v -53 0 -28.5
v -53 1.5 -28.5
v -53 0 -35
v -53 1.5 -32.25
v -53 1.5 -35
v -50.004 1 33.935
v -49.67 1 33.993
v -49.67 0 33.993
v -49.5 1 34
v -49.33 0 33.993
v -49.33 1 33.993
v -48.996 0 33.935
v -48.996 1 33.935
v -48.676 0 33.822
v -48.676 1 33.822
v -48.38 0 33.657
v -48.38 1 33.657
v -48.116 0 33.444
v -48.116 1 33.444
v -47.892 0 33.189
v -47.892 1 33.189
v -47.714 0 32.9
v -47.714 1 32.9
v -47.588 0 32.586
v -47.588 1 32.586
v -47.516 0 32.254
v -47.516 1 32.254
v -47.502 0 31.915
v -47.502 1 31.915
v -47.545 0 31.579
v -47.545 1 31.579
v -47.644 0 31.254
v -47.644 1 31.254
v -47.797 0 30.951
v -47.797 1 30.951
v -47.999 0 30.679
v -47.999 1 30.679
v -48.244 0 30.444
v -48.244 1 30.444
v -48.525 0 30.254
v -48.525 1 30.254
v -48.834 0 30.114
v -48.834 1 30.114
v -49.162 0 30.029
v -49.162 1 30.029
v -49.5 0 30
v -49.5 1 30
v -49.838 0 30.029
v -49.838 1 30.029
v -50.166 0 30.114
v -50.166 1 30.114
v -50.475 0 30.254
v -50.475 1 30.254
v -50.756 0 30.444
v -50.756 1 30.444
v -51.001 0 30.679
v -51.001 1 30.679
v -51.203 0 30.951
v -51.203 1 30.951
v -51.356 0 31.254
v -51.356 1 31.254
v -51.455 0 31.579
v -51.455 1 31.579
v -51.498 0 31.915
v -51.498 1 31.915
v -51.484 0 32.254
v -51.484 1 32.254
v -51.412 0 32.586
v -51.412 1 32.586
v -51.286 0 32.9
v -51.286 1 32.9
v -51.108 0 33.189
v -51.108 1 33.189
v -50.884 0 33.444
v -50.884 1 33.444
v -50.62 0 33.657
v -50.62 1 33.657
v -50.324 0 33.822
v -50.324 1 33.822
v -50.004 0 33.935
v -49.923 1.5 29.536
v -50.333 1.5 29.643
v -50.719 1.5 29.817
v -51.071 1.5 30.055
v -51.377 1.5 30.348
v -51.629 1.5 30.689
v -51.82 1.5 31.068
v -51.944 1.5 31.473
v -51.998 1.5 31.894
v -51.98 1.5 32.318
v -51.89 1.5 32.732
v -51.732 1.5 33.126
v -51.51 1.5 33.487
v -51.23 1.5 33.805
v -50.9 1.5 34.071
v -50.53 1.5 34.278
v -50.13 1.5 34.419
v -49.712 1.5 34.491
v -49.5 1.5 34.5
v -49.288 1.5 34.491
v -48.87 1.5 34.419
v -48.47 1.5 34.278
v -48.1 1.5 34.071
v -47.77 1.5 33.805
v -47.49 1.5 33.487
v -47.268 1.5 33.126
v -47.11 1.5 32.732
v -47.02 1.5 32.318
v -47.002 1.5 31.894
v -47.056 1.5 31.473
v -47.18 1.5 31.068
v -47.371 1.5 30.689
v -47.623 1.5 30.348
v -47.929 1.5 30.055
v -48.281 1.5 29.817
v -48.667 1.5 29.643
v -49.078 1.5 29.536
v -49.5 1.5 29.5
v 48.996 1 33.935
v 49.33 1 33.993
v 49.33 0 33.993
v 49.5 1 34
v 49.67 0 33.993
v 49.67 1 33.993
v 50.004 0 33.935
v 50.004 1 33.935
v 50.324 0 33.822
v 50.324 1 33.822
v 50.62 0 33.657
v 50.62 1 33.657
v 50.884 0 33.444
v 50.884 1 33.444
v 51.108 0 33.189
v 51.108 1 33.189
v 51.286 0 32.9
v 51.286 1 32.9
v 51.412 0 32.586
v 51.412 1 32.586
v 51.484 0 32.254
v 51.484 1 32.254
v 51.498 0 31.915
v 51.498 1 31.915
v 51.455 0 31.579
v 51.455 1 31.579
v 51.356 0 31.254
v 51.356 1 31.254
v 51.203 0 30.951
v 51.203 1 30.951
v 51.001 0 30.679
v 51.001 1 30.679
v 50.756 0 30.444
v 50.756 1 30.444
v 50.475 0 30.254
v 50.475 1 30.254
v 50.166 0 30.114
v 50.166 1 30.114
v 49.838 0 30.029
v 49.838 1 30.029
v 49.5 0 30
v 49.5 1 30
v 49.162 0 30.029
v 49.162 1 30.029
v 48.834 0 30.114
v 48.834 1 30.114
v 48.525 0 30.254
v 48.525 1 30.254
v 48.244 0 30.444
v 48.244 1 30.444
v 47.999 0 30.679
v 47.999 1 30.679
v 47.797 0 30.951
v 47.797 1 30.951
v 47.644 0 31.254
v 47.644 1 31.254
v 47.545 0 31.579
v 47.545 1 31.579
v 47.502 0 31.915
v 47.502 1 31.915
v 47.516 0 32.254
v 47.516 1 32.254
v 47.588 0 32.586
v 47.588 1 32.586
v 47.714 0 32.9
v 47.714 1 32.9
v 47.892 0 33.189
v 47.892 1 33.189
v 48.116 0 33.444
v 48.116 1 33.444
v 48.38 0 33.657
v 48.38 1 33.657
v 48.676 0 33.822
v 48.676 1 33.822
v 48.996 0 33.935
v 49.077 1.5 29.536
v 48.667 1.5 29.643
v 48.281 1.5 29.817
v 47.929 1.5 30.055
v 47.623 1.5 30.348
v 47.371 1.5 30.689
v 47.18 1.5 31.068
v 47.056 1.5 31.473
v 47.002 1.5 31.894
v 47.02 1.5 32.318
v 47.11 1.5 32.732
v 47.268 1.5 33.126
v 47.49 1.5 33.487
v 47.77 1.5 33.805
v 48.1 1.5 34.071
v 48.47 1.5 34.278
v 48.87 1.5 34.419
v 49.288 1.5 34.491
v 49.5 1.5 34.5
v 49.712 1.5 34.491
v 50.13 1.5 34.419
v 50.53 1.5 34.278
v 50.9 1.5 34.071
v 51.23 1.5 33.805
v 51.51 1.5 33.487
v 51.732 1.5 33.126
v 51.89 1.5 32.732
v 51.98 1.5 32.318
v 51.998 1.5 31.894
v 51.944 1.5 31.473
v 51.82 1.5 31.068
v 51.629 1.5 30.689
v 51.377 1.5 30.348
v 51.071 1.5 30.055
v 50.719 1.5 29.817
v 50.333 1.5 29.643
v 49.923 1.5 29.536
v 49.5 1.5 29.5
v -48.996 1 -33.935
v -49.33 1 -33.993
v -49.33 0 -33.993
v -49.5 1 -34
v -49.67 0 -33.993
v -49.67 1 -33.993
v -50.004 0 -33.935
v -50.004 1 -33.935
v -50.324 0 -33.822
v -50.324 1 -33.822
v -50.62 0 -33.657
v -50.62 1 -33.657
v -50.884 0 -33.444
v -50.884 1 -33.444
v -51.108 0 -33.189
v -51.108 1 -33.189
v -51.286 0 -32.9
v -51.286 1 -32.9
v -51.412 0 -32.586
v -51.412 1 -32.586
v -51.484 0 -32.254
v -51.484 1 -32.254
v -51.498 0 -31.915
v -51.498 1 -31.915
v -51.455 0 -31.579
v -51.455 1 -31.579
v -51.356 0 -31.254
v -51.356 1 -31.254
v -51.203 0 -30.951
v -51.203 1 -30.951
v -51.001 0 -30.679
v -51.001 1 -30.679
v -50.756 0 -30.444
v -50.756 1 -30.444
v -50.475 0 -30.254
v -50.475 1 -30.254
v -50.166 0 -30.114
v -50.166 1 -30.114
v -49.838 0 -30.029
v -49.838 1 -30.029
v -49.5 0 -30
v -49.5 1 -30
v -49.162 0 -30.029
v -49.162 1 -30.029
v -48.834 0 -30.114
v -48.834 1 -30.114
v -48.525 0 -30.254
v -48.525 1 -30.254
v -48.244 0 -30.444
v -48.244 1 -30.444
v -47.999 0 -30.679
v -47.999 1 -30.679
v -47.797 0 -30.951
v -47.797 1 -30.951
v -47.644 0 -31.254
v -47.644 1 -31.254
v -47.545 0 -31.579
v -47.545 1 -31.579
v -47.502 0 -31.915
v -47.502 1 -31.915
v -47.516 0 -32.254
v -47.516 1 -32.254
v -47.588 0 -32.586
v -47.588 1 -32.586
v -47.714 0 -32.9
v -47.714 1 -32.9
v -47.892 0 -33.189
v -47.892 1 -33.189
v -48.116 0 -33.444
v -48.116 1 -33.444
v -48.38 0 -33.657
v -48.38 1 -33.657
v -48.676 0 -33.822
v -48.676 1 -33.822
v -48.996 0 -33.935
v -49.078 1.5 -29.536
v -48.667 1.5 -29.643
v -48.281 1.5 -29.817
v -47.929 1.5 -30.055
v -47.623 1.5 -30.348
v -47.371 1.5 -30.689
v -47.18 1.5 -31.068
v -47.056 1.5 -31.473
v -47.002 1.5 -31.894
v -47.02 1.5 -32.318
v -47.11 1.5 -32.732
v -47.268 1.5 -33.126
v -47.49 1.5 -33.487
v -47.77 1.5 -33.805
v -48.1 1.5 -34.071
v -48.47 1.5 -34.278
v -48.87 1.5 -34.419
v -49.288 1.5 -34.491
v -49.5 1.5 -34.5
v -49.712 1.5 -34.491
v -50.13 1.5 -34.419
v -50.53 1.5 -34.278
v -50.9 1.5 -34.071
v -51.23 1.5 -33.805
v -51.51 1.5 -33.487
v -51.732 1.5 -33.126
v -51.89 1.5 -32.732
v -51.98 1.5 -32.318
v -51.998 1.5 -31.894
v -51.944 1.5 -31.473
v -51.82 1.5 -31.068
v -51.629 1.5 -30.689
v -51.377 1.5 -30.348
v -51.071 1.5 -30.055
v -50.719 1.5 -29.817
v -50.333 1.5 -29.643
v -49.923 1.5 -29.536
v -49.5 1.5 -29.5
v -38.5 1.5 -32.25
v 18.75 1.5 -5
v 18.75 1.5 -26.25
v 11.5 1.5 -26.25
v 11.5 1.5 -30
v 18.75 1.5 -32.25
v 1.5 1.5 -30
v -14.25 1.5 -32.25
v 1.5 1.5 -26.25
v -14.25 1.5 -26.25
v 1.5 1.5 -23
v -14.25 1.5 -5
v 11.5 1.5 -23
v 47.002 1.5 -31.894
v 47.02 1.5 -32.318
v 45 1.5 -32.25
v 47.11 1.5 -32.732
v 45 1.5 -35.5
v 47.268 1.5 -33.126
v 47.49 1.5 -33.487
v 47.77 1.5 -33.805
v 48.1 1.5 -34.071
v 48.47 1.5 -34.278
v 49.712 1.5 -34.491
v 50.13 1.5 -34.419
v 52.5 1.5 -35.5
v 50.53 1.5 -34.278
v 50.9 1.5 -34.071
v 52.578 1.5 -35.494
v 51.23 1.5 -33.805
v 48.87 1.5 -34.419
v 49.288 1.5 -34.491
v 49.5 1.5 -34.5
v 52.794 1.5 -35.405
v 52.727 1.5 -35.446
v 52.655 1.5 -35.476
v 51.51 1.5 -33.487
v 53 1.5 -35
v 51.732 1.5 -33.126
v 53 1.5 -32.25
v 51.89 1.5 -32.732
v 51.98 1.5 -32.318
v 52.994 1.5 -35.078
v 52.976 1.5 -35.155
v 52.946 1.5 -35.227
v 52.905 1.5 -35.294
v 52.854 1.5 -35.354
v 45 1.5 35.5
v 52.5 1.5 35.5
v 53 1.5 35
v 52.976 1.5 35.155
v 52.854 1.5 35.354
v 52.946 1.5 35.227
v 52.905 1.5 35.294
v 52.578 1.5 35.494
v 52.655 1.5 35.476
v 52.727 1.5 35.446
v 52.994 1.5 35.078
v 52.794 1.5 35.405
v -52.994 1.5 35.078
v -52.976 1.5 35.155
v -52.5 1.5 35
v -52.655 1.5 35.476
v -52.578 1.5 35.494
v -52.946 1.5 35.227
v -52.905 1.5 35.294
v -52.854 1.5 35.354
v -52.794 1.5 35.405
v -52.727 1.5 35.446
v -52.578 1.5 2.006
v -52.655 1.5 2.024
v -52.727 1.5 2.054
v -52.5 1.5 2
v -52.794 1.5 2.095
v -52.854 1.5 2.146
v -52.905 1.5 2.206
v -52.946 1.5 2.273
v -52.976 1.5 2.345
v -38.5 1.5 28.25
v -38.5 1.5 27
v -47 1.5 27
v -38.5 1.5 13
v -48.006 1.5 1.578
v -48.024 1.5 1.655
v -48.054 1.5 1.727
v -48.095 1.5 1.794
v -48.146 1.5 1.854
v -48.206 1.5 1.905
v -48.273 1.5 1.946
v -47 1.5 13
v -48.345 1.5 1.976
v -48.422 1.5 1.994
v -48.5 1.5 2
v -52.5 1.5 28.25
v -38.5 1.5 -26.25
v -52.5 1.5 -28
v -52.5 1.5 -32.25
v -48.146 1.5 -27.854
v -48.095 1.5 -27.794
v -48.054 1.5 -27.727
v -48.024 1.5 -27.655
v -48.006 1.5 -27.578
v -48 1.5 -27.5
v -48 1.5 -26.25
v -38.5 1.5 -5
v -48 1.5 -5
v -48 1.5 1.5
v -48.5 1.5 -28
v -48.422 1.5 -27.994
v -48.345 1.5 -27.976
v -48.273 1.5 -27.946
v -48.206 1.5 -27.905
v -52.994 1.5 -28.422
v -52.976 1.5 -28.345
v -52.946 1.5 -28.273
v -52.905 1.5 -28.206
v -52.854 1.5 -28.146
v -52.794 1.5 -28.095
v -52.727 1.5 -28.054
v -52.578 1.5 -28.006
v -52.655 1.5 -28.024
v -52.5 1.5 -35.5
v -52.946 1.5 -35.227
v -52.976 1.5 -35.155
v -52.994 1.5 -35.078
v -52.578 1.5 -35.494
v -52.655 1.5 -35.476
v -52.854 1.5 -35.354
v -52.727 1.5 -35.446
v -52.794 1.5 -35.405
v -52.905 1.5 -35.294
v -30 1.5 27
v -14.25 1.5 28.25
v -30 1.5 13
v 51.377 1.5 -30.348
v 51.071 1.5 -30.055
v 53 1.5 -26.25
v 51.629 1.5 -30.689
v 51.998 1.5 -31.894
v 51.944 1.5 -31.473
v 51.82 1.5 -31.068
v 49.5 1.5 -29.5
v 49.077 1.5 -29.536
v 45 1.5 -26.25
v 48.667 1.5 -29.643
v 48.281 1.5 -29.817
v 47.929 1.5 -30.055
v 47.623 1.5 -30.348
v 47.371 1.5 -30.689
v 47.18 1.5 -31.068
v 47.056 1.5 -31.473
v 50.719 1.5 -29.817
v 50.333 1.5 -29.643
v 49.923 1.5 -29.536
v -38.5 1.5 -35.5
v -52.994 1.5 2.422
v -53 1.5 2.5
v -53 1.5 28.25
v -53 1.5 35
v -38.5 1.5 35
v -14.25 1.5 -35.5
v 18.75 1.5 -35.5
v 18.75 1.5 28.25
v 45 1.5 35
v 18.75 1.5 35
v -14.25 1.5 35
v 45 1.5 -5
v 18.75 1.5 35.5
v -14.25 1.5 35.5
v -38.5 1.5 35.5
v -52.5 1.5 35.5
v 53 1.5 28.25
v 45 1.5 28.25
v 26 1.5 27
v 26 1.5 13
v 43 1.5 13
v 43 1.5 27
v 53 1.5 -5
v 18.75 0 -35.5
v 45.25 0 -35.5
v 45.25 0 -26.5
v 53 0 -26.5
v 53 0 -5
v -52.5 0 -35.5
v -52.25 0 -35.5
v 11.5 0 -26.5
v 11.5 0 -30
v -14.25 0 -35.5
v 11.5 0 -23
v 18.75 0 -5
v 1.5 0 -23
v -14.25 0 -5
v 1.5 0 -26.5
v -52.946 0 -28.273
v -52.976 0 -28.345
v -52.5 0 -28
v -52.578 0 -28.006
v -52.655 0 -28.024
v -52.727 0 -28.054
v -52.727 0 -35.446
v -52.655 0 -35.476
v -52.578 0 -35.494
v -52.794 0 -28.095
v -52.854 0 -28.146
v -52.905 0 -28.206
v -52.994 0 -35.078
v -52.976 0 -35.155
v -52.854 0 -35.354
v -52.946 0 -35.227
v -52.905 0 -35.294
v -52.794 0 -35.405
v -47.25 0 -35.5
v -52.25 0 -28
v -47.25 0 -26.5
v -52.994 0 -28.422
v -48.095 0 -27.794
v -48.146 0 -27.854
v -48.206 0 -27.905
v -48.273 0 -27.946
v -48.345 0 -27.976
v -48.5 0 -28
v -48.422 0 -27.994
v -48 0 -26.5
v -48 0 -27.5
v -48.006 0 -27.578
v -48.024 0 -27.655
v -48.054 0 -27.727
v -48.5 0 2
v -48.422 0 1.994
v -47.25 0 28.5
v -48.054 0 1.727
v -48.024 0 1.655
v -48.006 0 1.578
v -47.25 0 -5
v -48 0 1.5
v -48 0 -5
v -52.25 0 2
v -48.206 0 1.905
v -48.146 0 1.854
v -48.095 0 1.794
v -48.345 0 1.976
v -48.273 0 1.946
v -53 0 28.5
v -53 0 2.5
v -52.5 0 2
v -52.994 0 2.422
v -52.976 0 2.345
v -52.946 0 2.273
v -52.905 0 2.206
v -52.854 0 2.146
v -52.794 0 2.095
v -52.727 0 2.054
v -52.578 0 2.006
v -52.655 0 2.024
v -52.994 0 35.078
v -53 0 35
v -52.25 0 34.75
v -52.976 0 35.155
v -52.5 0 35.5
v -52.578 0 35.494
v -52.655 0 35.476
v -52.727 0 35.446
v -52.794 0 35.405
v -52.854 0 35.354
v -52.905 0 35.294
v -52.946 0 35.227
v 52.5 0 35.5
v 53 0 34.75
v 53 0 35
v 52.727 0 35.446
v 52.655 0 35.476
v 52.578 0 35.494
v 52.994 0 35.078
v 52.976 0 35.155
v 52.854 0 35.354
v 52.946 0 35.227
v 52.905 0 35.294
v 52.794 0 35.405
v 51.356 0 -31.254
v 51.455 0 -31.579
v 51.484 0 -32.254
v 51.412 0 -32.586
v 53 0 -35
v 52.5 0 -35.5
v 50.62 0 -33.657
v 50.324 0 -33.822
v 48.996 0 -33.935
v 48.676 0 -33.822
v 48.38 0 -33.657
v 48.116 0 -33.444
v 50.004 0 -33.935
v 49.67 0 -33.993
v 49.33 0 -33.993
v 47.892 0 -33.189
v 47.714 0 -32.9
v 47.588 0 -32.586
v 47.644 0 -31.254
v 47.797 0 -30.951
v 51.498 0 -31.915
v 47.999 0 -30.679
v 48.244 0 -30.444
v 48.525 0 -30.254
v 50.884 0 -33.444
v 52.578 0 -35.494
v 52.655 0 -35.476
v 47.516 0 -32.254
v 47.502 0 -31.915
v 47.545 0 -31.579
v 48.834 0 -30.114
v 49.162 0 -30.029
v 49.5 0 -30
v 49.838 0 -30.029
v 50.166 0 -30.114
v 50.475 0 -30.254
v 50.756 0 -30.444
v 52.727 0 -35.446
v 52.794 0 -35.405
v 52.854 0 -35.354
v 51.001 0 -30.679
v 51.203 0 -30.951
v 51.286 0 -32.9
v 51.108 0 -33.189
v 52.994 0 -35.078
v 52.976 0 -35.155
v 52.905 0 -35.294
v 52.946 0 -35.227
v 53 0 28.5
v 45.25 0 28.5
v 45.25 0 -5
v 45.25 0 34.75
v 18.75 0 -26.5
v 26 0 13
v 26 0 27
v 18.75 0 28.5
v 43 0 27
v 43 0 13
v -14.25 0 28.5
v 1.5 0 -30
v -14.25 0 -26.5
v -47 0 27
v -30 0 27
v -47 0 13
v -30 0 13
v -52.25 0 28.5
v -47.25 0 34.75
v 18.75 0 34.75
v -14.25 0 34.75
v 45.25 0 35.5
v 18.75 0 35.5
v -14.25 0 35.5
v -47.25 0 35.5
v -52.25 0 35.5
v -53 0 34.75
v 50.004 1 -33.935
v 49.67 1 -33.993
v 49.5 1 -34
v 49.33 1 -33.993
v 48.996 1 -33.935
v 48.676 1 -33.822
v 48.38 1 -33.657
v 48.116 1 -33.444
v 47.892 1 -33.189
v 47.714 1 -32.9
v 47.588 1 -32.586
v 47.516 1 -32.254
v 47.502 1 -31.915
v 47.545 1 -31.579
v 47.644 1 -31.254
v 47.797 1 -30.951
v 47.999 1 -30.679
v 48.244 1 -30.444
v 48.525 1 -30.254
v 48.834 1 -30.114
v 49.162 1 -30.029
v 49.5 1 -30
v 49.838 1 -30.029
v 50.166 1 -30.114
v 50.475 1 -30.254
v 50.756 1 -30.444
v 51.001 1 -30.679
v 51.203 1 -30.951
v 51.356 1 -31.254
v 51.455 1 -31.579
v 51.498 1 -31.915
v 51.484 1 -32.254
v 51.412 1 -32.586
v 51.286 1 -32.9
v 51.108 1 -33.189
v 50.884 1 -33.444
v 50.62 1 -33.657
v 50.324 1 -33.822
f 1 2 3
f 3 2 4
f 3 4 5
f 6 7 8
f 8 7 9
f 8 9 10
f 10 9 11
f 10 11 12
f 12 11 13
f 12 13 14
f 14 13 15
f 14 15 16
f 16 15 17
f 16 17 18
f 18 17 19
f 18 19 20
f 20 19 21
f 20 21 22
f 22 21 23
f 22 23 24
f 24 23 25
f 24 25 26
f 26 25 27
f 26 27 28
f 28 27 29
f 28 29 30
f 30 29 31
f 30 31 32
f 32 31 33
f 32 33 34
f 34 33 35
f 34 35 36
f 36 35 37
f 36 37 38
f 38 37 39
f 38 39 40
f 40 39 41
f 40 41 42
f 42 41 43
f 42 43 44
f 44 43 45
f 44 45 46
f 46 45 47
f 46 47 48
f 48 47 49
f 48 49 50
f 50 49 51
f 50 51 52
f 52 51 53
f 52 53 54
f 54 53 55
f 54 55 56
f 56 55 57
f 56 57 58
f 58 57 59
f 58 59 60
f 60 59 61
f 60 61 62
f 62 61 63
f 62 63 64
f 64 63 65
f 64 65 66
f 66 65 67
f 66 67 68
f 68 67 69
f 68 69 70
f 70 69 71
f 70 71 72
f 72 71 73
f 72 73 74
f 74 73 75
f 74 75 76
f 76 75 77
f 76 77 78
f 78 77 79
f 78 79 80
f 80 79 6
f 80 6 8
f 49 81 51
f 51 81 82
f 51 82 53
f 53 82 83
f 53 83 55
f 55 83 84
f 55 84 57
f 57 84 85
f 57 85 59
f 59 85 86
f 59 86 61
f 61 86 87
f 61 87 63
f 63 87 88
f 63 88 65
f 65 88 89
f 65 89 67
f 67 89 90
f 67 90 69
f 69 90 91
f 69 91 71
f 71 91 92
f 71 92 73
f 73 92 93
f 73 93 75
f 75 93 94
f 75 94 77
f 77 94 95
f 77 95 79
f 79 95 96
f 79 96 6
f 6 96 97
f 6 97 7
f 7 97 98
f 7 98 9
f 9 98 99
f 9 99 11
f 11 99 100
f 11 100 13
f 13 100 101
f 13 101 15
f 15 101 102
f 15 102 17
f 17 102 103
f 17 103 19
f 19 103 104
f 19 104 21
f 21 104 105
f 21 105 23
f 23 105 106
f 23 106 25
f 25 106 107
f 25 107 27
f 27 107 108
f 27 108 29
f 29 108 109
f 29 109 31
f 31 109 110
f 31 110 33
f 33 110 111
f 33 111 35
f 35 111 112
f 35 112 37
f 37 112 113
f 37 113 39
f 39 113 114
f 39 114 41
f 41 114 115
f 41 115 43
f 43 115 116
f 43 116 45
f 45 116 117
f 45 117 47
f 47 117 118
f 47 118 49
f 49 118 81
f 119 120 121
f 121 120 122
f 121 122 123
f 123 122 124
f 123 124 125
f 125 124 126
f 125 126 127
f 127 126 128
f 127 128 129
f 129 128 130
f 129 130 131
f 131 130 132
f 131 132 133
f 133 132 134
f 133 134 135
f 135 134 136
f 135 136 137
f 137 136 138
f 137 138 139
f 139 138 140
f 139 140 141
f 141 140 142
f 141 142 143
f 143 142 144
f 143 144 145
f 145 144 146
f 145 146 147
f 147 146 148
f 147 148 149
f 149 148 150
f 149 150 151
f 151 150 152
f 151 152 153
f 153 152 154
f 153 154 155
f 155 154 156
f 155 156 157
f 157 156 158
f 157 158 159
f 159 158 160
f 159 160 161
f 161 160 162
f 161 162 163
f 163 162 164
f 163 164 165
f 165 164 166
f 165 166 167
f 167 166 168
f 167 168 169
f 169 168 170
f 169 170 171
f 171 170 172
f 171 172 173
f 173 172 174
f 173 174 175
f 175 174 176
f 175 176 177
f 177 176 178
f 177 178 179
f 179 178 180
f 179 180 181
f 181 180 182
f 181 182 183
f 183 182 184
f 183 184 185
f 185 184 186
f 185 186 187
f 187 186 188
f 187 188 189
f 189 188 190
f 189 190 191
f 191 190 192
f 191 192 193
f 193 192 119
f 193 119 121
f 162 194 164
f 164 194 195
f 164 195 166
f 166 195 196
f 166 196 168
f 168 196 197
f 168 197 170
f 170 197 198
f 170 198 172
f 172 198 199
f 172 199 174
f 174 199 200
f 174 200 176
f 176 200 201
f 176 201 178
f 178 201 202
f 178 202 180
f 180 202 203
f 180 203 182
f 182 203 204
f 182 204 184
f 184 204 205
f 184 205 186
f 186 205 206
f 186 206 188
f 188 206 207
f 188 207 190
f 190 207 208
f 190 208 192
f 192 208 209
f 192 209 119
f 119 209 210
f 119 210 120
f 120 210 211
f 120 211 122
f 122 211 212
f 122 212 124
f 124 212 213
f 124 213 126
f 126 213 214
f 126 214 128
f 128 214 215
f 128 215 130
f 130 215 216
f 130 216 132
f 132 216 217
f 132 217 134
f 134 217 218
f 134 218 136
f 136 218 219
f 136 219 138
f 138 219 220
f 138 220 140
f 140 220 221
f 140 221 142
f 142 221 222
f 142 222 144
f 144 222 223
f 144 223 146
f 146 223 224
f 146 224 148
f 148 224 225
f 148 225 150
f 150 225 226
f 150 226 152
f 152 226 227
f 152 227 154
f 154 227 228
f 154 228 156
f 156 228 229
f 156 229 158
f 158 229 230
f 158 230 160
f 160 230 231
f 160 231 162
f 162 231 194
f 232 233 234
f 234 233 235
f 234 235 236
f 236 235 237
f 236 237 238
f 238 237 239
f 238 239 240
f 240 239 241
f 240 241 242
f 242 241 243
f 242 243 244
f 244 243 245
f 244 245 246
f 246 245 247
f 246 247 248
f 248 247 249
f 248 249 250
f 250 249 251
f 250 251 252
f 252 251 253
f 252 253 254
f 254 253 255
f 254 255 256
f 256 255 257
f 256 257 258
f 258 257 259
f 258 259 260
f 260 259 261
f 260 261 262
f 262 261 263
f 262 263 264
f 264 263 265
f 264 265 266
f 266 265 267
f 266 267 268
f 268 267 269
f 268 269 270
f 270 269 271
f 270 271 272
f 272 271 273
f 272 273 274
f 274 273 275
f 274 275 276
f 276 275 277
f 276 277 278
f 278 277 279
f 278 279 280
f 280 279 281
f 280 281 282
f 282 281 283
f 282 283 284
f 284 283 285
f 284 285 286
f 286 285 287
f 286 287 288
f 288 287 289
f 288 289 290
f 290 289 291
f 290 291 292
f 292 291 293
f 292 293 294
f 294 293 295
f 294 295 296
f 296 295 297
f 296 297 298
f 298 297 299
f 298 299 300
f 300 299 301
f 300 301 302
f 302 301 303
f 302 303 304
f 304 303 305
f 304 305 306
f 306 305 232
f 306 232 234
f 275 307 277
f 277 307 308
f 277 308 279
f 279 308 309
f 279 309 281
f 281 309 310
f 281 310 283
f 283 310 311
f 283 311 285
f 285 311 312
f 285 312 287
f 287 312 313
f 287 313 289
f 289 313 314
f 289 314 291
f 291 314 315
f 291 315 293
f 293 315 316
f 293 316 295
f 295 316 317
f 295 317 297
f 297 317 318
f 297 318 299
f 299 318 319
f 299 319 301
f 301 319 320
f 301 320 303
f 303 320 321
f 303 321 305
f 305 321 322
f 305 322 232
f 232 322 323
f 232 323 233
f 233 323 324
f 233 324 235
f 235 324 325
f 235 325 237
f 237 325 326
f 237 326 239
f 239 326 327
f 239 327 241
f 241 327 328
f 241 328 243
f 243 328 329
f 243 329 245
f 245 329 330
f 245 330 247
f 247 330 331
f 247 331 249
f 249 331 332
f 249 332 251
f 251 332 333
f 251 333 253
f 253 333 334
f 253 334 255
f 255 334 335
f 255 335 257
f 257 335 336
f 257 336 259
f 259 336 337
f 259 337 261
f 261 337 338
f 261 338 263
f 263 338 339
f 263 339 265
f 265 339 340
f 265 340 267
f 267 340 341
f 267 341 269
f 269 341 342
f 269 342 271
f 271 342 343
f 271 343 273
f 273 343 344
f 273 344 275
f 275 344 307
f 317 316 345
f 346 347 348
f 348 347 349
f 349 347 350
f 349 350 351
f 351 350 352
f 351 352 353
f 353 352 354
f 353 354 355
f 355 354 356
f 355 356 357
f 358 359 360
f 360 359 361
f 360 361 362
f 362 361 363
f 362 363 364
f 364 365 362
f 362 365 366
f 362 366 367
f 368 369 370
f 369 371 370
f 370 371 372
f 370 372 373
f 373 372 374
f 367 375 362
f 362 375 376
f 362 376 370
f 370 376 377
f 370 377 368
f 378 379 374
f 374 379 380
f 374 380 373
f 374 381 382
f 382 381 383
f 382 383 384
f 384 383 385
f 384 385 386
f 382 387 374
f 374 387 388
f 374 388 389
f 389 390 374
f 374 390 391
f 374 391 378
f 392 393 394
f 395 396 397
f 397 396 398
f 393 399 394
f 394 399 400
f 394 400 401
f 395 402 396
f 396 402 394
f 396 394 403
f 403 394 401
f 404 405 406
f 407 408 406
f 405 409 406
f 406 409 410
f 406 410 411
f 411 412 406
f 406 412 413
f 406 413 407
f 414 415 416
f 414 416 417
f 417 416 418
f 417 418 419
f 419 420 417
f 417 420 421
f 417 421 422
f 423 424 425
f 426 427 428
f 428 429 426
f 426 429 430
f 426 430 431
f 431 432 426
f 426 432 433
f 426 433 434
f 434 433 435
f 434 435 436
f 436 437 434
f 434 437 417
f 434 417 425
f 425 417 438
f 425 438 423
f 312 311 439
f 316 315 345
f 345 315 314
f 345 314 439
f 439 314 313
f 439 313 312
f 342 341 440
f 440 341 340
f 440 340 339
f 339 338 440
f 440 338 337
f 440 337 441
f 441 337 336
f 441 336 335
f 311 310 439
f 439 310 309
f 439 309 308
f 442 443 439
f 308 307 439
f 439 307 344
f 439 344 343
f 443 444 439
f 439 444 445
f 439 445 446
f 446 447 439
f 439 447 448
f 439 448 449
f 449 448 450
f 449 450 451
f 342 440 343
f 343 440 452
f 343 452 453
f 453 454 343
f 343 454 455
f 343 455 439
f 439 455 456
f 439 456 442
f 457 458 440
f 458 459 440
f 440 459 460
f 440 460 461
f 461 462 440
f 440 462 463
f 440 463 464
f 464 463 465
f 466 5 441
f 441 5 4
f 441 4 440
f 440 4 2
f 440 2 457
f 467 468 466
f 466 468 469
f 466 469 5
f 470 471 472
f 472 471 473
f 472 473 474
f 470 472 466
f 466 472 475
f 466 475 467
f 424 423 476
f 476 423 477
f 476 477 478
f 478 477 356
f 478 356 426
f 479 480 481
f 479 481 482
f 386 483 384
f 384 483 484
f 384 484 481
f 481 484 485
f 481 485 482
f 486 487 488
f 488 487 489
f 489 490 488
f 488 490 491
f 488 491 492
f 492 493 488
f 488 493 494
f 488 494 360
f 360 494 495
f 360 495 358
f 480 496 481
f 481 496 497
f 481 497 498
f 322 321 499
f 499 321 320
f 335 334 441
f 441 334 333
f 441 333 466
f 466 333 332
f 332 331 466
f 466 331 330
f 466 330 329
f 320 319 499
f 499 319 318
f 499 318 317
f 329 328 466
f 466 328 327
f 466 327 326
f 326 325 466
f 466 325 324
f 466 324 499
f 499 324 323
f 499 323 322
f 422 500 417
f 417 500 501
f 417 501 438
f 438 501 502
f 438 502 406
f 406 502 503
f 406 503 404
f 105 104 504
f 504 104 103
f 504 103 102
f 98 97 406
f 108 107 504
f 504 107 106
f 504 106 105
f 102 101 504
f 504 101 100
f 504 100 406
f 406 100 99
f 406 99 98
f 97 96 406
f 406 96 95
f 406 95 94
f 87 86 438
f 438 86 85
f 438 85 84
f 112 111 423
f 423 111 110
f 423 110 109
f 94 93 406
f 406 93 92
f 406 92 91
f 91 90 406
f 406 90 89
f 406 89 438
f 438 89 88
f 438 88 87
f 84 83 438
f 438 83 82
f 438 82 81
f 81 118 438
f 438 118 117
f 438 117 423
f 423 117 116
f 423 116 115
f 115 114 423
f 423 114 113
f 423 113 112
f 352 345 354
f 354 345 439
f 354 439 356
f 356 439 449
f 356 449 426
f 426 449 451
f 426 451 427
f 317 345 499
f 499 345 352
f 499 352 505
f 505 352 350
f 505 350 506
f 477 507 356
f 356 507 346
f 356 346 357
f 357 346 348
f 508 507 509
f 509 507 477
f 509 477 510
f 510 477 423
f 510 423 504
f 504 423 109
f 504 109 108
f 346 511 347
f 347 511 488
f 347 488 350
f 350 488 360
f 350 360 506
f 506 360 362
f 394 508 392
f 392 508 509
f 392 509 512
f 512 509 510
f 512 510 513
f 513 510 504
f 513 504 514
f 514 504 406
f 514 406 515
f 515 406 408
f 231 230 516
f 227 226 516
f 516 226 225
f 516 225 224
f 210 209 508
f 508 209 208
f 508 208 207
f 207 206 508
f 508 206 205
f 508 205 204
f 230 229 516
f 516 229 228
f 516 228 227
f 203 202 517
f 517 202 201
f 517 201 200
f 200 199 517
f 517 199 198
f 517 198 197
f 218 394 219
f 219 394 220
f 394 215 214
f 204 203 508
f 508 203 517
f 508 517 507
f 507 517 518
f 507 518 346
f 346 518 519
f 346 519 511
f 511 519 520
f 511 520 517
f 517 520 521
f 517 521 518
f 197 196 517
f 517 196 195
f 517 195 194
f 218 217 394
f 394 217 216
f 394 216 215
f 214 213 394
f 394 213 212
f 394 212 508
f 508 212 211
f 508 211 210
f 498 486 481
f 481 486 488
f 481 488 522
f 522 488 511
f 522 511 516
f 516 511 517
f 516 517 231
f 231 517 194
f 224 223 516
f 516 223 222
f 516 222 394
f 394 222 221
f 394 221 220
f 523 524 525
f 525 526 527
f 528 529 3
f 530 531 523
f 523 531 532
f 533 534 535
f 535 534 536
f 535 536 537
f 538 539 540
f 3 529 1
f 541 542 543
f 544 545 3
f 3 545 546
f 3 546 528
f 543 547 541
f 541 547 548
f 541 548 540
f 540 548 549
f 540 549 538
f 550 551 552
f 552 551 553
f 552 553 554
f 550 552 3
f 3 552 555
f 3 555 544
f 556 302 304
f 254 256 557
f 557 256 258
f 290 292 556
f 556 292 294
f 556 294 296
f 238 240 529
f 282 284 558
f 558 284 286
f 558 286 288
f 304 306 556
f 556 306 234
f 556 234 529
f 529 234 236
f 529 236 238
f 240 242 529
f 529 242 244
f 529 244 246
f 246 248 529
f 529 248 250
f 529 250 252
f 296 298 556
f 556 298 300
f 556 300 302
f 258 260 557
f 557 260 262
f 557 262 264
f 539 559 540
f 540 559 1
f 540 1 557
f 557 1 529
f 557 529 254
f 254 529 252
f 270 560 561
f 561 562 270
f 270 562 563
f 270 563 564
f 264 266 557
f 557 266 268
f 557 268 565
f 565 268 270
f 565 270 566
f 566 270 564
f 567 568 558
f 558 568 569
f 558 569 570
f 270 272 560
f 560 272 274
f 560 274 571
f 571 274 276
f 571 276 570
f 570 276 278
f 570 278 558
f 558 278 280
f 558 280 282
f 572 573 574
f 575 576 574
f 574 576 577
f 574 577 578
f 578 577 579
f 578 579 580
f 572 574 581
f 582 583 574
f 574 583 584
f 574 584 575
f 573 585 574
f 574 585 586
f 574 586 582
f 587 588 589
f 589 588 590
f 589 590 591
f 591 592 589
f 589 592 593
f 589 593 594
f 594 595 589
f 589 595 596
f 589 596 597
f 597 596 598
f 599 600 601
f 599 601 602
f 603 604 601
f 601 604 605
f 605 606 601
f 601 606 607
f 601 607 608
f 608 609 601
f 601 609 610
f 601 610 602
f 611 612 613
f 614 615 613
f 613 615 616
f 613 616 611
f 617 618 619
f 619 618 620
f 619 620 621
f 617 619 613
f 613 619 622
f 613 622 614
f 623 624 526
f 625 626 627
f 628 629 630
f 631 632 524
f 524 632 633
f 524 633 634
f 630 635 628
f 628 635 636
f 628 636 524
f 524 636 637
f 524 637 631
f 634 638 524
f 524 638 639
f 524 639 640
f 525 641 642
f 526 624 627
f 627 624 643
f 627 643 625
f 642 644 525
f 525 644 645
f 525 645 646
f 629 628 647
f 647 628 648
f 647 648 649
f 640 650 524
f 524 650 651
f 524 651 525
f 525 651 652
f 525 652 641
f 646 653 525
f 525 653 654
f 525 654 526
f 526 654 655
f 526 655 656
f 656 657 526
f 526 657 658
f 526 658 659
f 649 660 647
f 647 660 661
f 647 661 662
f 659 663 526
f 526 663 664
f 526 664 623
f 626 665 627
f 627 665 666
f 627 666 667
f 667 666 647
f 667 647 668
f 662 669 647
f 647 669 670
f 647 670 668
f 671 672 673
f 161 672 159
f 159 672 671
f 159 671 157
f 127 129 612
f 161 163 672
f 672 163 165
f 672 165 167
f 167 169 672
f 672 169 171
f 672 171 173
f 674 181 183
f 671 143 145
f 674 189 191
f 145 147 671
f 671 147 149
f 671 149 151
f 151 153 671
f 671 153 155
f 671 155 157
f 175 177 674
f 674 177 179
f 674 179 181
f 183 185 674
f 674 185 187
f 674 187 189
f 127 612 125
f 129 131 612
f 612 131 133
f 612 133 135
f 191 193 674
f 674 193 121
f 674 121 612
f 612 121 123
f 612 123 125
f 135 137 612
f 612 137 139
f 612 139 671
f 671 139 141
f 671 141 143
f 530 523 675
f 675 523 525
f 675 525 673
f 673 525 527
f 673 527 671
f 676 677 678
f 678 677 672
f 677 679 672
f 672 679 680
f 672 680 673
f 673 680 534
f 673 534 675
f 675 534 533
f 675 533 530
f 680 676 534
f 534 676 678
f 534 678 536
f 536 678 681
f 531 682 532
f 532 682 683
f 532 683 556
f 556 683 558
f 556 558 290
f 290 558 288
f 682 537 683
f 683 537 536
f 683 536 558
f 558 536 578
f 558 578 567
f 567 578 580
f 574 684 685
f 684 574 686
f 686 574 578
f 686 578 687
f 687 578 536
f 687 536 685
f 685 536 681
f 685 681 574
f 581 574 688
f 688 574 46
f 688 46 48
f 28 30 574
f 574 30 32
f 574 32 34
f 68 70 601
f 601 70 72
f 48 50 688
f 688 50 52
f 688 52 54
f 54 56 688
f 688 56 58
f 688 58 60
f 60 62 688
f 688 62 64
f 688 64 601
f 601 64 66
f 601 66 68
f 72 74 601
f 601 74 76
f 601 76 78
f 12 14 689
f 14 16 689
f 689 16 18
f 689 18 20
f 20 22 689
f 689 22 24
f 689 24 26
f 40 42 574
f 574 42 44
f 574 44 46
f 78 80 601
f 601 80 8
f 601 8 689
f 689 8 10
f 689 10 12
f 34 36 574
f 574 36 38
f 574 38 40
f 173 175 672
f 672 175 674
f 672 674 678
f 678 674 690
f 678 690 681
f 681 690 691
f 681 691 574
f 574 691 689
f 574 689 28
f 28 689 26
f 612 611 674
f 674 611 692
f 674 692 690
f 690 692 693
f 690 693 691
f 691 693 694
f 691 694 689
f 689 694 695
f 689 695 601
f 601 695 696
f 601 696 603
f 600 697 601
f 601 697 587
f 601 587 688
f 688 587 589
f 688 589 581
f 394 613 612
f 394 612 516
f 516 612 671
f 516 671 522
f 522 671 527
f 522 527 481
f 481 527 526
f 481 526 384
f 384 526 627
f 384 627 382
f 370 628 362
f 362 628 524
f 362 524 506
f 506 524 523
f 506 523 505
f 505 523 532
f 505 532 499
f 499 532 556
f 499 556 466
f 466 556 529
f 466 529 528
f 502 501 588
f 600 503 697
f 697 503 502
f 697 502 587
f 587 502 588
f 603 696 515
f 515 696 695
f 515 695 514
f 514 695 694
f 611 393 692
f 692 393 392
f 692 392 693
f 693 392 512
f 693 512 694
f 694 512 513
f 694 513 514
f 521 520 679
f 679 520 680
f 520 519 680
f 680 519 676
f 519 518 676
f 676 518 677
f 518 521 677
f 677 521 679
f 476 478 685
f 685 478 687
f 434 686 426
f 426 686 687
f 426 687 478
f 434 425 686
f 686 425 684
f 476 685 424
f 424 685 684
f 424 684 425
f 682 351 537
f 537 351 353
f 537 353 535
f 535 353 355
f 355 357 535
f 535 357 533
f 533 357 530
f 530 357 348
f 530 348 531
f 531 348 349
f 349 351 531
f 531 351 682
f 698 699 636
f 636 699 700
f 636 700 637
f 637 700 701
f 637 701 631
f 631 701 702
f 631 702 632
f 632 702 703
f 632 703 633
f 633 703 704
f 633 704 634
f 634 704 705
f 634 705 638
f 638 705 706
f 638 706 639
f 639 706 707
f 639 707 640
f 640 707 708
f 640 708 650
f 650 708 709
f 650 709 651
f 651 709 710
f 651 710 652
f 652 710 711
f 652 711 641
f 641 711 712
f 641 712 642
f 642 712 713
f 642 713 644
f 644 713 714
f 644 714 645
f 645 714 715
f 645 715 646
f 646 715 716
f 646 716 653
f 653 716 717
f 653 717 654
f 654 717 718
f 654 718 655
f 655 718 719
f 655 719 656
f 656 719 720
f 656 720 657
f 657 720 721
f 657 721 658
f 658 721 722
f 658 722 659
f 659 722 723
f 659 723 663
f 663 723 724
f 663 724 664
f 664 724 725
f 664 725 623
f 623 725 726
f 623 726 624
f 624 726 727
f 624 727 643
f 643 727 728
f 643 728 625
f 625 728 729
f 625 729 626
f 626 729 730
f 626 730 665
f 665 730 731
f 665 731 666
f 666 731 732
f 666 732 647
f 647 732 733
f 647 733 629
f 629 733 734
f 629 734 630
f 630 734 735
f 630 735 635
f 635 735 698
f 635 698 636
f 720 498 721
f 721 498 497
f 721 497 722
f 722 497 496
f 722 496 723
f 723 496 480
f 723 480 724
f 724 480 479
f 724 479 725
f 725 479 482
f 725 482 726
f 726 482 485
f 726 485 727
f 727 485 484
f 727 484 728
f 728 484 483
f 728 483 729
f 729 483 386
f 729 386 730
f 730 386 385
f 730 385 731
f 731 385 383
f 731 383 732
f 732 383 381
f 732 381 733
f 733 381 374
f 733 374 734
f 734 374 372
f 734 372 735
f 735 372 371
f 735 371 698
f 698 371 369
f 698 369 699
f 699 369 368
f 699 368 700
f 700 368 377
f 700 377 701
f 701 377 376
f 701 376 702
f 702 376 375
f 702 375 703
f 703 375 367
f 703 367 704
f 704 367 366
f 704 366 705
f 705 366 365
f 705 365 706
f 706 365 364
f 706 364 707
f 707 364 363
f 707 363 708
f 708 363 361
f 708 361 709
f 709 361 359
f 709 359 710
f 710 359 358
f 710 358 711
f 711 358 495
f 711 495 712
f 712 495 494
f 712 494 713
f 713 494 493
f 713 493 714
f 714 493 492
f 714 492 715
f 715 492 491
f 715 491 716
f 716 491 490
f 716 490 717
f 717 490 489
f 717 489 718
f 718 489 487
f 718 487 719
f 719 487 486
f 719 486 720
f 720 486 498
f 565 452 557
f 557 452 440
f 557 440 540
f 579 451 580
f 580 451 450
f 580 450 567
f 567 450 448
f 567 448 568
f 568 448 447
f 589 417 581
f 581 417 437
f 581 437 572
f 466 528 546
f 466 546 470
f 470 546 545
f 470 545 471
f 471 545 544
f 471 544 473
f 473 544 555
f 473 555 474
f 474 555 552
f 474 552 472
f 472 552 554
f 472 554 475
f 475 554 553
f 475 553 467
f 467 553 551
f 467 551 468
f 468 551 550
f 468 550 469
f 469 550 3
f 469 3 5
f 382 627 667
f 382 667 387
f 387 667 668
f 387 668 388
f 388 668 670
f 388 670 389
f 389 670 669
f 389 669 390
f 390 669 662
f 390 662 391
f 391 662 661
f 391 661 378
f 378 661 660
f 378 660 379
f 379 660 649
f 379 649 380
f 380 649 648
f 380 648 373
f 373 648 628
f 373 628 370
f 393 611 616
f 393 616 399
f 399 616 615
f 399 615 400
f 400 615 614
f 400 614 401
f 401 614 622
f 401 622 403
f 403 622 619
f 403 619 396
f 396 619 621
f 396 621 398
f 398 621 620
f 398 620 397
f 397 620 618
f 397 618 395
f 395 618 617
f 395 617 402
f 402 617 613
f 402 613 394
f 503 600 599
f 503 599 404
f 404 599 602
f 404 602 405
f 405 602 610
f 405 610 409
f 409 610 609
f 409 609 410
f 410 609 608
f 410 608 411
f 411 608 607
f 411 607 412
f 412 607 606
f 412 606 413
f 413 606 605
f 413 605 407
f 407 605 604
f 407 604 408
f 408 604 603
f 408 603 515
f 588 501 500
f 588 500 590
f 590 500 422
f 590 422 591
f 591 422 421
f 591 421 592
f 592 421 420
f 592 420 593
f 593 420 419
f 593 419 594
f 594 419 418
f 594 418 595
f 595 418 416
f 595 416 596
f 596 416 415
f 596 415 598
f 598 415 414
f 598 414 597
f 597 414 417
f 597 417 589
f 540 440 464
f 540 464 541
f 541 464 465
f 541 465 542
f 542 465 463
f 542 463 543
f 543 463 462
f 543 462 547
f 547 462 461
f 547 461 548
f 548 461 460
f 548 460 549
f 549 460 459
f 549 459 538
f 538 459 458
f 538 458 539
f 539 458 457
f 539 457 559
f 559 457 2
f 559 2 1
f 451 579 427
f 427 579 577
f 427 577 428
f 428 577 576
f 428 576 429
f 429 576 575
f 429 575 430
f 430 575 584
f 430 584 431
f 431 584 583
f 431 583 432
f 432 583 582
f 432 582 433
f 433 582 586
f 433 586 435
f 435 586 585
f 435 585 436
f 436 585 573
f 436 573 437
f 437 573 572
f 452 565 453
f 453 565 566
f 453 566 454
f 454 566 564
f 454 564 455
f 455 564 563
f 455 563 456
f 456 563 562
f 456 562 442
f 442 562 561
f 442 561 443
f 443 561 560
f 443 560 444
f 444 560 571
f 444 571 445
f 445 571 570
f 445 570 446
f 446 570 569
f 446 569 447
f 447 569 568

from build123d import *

# Parameters (mm, degrees)
SKETCH2_W           = 106
SKETCH2_H           = 71
SKETCH2_W_2         = 17
SKETCH2_H_2         = 14
SKETCH2_W_3         = 10
SKETCH2_H_3         = 7
BOSS_EXTRUDE1_DEPTH = 1.5
SKETCH3_R           = 2
CUT_EXTRUDE1_DEPTH  = 1.5
CHAMFER2_SIZE       = 0.5
SKETCH4_W           = 5
SKETCH4_H           = 30
CUT_EXTRUDE2_DEPTH  = 1.5
FILLET1_R           = 0.5


# Read off the part's stored shape, not the designer's step: Mirror1
with BuildPart() as part:
    # Sketch2 → Boss-Extrude1 (new body)
    with BuildSketch(Plane(origin=(0, 0, 0), x_dir=(1, 0, 0), z_dir=(0, 1, 0))):
        Rectangle(SKETCH2_W, SKETCH2_H)
        with Locations((34.5, -20)):
            Rectangle(SKETCH2_W_2, SKETCH2_H_2, mode=Mode.SUBTRACT)
        with Locations((-38.5, -20)):
            Rectangle(SKETCH2_W_2, SKETCH2_H_2, mode=Mode.SUBTRACT)
        with Locations((6.5, 26.5)):
            Rectangle(SKETCH2_W_3, SKETCH2_H_3, mode=Mode.SUBTRACT)
    extrude(amount=BOSS_EXTRUDE1_DEPTH)

    # Sketch3 → Cut-Extrude1 (cut)
    with BuildSketch(Plane(origin=(0, 1.5, 0), x_dir=(1, 0, 0), z_dir=(0, 1, 0))):
        with Locations(Location((49.5, 32, 0), (0, 0, 270))):
            Circle(SKETCH3_R)
    extrude(amount=-CUT_EXTRUDE1_DEPTH, mode=Mode.SUBTRACT)

    # Chamfer2
    chamfer2_edges = [part.edges().sort_by_distance(p)[0] for p in [
        (49.5, 1.5, -34),
    ]]
    chamfer(chamfer2_edges, length=CHAMFER2_SIZE)

    # Mirror1 outline → Mirror1 (revolve, cut)
    with BuildSketch(Plane(origin=(-49.5, 0, 32), x_dir=(1, 0, 0), z_dir=(0, 0, 1))):
        Polygon((0, 0), (2, 0), (2, 1), (2.5, 1.5), (0, 1.5), align=None)
    revolve(axis=Axis((-49.5, 0, 32), (0, 1, 0)), mode=Mode.SUBTRACT)

    # Mirror1 2 outline → Mirror1 2 (revolve, cut)
    with BuildSketch(Plane(origin=(49.5, 0, 32), x_dir=(1, 0, 0), z_dir=(0, 0, 1))):
        Polygon((0, 0), (2, 0), (2, 1), (2.5, 1.5), (0, 1.5), align=None)
    revolve(axis=Axis((49.5, 0, 32), (0, 1, 0)), mode=Mode.SUBTRACT)

    # Mirror1 3 outline → Mirror1 3 (revolve, cut)
    with BuildSketch(Plane(origin=(-49.5, 0, -32), x_dir=(1, 0, 0), z_dir=(0, 0, 1))):
        Polygon((0, 0), (2, 0), (2, 1), (2.5, 1.5), (0, 1.5), align=None)
    revolve(axis=Axis((-49.5, 0, -32), (0, 1, 0)), mode=Mode.SUBTRACT)

    # Sketch4 → Cut-Extrude2 (cut)
    with BuildSketch(Plane(origin=(0, 1.5, 0), x_dir=(1, 0, 0), z_dir=(0, 1, 0))):
        with Locations((-50.5, 13)):
            Rectangle(SKETCH4_W, SKETCH4_H)
    extrude(amount=-CUT_EXTRUDE2_DEPTH, mode=Mode.SUBTRACT)

    # Fillet1
    fillet1_edges = [part.edges().sort_by_distance(p)[0] for p in [
        (53, 0.75, 35.5),
        (-53, 0.75, 35.5),
        (-53, 0.75, -35.5),
        (53, 0.75, -35.5),
        (-53, 0.75, 2),
        (-53, 0.75, -28),
        (-48, 0.75, -28),
        (-48, 0.75, 2),
    ]]
    fillet(fillet1_edges, radius=FILLET1_R)


solid = part.part
